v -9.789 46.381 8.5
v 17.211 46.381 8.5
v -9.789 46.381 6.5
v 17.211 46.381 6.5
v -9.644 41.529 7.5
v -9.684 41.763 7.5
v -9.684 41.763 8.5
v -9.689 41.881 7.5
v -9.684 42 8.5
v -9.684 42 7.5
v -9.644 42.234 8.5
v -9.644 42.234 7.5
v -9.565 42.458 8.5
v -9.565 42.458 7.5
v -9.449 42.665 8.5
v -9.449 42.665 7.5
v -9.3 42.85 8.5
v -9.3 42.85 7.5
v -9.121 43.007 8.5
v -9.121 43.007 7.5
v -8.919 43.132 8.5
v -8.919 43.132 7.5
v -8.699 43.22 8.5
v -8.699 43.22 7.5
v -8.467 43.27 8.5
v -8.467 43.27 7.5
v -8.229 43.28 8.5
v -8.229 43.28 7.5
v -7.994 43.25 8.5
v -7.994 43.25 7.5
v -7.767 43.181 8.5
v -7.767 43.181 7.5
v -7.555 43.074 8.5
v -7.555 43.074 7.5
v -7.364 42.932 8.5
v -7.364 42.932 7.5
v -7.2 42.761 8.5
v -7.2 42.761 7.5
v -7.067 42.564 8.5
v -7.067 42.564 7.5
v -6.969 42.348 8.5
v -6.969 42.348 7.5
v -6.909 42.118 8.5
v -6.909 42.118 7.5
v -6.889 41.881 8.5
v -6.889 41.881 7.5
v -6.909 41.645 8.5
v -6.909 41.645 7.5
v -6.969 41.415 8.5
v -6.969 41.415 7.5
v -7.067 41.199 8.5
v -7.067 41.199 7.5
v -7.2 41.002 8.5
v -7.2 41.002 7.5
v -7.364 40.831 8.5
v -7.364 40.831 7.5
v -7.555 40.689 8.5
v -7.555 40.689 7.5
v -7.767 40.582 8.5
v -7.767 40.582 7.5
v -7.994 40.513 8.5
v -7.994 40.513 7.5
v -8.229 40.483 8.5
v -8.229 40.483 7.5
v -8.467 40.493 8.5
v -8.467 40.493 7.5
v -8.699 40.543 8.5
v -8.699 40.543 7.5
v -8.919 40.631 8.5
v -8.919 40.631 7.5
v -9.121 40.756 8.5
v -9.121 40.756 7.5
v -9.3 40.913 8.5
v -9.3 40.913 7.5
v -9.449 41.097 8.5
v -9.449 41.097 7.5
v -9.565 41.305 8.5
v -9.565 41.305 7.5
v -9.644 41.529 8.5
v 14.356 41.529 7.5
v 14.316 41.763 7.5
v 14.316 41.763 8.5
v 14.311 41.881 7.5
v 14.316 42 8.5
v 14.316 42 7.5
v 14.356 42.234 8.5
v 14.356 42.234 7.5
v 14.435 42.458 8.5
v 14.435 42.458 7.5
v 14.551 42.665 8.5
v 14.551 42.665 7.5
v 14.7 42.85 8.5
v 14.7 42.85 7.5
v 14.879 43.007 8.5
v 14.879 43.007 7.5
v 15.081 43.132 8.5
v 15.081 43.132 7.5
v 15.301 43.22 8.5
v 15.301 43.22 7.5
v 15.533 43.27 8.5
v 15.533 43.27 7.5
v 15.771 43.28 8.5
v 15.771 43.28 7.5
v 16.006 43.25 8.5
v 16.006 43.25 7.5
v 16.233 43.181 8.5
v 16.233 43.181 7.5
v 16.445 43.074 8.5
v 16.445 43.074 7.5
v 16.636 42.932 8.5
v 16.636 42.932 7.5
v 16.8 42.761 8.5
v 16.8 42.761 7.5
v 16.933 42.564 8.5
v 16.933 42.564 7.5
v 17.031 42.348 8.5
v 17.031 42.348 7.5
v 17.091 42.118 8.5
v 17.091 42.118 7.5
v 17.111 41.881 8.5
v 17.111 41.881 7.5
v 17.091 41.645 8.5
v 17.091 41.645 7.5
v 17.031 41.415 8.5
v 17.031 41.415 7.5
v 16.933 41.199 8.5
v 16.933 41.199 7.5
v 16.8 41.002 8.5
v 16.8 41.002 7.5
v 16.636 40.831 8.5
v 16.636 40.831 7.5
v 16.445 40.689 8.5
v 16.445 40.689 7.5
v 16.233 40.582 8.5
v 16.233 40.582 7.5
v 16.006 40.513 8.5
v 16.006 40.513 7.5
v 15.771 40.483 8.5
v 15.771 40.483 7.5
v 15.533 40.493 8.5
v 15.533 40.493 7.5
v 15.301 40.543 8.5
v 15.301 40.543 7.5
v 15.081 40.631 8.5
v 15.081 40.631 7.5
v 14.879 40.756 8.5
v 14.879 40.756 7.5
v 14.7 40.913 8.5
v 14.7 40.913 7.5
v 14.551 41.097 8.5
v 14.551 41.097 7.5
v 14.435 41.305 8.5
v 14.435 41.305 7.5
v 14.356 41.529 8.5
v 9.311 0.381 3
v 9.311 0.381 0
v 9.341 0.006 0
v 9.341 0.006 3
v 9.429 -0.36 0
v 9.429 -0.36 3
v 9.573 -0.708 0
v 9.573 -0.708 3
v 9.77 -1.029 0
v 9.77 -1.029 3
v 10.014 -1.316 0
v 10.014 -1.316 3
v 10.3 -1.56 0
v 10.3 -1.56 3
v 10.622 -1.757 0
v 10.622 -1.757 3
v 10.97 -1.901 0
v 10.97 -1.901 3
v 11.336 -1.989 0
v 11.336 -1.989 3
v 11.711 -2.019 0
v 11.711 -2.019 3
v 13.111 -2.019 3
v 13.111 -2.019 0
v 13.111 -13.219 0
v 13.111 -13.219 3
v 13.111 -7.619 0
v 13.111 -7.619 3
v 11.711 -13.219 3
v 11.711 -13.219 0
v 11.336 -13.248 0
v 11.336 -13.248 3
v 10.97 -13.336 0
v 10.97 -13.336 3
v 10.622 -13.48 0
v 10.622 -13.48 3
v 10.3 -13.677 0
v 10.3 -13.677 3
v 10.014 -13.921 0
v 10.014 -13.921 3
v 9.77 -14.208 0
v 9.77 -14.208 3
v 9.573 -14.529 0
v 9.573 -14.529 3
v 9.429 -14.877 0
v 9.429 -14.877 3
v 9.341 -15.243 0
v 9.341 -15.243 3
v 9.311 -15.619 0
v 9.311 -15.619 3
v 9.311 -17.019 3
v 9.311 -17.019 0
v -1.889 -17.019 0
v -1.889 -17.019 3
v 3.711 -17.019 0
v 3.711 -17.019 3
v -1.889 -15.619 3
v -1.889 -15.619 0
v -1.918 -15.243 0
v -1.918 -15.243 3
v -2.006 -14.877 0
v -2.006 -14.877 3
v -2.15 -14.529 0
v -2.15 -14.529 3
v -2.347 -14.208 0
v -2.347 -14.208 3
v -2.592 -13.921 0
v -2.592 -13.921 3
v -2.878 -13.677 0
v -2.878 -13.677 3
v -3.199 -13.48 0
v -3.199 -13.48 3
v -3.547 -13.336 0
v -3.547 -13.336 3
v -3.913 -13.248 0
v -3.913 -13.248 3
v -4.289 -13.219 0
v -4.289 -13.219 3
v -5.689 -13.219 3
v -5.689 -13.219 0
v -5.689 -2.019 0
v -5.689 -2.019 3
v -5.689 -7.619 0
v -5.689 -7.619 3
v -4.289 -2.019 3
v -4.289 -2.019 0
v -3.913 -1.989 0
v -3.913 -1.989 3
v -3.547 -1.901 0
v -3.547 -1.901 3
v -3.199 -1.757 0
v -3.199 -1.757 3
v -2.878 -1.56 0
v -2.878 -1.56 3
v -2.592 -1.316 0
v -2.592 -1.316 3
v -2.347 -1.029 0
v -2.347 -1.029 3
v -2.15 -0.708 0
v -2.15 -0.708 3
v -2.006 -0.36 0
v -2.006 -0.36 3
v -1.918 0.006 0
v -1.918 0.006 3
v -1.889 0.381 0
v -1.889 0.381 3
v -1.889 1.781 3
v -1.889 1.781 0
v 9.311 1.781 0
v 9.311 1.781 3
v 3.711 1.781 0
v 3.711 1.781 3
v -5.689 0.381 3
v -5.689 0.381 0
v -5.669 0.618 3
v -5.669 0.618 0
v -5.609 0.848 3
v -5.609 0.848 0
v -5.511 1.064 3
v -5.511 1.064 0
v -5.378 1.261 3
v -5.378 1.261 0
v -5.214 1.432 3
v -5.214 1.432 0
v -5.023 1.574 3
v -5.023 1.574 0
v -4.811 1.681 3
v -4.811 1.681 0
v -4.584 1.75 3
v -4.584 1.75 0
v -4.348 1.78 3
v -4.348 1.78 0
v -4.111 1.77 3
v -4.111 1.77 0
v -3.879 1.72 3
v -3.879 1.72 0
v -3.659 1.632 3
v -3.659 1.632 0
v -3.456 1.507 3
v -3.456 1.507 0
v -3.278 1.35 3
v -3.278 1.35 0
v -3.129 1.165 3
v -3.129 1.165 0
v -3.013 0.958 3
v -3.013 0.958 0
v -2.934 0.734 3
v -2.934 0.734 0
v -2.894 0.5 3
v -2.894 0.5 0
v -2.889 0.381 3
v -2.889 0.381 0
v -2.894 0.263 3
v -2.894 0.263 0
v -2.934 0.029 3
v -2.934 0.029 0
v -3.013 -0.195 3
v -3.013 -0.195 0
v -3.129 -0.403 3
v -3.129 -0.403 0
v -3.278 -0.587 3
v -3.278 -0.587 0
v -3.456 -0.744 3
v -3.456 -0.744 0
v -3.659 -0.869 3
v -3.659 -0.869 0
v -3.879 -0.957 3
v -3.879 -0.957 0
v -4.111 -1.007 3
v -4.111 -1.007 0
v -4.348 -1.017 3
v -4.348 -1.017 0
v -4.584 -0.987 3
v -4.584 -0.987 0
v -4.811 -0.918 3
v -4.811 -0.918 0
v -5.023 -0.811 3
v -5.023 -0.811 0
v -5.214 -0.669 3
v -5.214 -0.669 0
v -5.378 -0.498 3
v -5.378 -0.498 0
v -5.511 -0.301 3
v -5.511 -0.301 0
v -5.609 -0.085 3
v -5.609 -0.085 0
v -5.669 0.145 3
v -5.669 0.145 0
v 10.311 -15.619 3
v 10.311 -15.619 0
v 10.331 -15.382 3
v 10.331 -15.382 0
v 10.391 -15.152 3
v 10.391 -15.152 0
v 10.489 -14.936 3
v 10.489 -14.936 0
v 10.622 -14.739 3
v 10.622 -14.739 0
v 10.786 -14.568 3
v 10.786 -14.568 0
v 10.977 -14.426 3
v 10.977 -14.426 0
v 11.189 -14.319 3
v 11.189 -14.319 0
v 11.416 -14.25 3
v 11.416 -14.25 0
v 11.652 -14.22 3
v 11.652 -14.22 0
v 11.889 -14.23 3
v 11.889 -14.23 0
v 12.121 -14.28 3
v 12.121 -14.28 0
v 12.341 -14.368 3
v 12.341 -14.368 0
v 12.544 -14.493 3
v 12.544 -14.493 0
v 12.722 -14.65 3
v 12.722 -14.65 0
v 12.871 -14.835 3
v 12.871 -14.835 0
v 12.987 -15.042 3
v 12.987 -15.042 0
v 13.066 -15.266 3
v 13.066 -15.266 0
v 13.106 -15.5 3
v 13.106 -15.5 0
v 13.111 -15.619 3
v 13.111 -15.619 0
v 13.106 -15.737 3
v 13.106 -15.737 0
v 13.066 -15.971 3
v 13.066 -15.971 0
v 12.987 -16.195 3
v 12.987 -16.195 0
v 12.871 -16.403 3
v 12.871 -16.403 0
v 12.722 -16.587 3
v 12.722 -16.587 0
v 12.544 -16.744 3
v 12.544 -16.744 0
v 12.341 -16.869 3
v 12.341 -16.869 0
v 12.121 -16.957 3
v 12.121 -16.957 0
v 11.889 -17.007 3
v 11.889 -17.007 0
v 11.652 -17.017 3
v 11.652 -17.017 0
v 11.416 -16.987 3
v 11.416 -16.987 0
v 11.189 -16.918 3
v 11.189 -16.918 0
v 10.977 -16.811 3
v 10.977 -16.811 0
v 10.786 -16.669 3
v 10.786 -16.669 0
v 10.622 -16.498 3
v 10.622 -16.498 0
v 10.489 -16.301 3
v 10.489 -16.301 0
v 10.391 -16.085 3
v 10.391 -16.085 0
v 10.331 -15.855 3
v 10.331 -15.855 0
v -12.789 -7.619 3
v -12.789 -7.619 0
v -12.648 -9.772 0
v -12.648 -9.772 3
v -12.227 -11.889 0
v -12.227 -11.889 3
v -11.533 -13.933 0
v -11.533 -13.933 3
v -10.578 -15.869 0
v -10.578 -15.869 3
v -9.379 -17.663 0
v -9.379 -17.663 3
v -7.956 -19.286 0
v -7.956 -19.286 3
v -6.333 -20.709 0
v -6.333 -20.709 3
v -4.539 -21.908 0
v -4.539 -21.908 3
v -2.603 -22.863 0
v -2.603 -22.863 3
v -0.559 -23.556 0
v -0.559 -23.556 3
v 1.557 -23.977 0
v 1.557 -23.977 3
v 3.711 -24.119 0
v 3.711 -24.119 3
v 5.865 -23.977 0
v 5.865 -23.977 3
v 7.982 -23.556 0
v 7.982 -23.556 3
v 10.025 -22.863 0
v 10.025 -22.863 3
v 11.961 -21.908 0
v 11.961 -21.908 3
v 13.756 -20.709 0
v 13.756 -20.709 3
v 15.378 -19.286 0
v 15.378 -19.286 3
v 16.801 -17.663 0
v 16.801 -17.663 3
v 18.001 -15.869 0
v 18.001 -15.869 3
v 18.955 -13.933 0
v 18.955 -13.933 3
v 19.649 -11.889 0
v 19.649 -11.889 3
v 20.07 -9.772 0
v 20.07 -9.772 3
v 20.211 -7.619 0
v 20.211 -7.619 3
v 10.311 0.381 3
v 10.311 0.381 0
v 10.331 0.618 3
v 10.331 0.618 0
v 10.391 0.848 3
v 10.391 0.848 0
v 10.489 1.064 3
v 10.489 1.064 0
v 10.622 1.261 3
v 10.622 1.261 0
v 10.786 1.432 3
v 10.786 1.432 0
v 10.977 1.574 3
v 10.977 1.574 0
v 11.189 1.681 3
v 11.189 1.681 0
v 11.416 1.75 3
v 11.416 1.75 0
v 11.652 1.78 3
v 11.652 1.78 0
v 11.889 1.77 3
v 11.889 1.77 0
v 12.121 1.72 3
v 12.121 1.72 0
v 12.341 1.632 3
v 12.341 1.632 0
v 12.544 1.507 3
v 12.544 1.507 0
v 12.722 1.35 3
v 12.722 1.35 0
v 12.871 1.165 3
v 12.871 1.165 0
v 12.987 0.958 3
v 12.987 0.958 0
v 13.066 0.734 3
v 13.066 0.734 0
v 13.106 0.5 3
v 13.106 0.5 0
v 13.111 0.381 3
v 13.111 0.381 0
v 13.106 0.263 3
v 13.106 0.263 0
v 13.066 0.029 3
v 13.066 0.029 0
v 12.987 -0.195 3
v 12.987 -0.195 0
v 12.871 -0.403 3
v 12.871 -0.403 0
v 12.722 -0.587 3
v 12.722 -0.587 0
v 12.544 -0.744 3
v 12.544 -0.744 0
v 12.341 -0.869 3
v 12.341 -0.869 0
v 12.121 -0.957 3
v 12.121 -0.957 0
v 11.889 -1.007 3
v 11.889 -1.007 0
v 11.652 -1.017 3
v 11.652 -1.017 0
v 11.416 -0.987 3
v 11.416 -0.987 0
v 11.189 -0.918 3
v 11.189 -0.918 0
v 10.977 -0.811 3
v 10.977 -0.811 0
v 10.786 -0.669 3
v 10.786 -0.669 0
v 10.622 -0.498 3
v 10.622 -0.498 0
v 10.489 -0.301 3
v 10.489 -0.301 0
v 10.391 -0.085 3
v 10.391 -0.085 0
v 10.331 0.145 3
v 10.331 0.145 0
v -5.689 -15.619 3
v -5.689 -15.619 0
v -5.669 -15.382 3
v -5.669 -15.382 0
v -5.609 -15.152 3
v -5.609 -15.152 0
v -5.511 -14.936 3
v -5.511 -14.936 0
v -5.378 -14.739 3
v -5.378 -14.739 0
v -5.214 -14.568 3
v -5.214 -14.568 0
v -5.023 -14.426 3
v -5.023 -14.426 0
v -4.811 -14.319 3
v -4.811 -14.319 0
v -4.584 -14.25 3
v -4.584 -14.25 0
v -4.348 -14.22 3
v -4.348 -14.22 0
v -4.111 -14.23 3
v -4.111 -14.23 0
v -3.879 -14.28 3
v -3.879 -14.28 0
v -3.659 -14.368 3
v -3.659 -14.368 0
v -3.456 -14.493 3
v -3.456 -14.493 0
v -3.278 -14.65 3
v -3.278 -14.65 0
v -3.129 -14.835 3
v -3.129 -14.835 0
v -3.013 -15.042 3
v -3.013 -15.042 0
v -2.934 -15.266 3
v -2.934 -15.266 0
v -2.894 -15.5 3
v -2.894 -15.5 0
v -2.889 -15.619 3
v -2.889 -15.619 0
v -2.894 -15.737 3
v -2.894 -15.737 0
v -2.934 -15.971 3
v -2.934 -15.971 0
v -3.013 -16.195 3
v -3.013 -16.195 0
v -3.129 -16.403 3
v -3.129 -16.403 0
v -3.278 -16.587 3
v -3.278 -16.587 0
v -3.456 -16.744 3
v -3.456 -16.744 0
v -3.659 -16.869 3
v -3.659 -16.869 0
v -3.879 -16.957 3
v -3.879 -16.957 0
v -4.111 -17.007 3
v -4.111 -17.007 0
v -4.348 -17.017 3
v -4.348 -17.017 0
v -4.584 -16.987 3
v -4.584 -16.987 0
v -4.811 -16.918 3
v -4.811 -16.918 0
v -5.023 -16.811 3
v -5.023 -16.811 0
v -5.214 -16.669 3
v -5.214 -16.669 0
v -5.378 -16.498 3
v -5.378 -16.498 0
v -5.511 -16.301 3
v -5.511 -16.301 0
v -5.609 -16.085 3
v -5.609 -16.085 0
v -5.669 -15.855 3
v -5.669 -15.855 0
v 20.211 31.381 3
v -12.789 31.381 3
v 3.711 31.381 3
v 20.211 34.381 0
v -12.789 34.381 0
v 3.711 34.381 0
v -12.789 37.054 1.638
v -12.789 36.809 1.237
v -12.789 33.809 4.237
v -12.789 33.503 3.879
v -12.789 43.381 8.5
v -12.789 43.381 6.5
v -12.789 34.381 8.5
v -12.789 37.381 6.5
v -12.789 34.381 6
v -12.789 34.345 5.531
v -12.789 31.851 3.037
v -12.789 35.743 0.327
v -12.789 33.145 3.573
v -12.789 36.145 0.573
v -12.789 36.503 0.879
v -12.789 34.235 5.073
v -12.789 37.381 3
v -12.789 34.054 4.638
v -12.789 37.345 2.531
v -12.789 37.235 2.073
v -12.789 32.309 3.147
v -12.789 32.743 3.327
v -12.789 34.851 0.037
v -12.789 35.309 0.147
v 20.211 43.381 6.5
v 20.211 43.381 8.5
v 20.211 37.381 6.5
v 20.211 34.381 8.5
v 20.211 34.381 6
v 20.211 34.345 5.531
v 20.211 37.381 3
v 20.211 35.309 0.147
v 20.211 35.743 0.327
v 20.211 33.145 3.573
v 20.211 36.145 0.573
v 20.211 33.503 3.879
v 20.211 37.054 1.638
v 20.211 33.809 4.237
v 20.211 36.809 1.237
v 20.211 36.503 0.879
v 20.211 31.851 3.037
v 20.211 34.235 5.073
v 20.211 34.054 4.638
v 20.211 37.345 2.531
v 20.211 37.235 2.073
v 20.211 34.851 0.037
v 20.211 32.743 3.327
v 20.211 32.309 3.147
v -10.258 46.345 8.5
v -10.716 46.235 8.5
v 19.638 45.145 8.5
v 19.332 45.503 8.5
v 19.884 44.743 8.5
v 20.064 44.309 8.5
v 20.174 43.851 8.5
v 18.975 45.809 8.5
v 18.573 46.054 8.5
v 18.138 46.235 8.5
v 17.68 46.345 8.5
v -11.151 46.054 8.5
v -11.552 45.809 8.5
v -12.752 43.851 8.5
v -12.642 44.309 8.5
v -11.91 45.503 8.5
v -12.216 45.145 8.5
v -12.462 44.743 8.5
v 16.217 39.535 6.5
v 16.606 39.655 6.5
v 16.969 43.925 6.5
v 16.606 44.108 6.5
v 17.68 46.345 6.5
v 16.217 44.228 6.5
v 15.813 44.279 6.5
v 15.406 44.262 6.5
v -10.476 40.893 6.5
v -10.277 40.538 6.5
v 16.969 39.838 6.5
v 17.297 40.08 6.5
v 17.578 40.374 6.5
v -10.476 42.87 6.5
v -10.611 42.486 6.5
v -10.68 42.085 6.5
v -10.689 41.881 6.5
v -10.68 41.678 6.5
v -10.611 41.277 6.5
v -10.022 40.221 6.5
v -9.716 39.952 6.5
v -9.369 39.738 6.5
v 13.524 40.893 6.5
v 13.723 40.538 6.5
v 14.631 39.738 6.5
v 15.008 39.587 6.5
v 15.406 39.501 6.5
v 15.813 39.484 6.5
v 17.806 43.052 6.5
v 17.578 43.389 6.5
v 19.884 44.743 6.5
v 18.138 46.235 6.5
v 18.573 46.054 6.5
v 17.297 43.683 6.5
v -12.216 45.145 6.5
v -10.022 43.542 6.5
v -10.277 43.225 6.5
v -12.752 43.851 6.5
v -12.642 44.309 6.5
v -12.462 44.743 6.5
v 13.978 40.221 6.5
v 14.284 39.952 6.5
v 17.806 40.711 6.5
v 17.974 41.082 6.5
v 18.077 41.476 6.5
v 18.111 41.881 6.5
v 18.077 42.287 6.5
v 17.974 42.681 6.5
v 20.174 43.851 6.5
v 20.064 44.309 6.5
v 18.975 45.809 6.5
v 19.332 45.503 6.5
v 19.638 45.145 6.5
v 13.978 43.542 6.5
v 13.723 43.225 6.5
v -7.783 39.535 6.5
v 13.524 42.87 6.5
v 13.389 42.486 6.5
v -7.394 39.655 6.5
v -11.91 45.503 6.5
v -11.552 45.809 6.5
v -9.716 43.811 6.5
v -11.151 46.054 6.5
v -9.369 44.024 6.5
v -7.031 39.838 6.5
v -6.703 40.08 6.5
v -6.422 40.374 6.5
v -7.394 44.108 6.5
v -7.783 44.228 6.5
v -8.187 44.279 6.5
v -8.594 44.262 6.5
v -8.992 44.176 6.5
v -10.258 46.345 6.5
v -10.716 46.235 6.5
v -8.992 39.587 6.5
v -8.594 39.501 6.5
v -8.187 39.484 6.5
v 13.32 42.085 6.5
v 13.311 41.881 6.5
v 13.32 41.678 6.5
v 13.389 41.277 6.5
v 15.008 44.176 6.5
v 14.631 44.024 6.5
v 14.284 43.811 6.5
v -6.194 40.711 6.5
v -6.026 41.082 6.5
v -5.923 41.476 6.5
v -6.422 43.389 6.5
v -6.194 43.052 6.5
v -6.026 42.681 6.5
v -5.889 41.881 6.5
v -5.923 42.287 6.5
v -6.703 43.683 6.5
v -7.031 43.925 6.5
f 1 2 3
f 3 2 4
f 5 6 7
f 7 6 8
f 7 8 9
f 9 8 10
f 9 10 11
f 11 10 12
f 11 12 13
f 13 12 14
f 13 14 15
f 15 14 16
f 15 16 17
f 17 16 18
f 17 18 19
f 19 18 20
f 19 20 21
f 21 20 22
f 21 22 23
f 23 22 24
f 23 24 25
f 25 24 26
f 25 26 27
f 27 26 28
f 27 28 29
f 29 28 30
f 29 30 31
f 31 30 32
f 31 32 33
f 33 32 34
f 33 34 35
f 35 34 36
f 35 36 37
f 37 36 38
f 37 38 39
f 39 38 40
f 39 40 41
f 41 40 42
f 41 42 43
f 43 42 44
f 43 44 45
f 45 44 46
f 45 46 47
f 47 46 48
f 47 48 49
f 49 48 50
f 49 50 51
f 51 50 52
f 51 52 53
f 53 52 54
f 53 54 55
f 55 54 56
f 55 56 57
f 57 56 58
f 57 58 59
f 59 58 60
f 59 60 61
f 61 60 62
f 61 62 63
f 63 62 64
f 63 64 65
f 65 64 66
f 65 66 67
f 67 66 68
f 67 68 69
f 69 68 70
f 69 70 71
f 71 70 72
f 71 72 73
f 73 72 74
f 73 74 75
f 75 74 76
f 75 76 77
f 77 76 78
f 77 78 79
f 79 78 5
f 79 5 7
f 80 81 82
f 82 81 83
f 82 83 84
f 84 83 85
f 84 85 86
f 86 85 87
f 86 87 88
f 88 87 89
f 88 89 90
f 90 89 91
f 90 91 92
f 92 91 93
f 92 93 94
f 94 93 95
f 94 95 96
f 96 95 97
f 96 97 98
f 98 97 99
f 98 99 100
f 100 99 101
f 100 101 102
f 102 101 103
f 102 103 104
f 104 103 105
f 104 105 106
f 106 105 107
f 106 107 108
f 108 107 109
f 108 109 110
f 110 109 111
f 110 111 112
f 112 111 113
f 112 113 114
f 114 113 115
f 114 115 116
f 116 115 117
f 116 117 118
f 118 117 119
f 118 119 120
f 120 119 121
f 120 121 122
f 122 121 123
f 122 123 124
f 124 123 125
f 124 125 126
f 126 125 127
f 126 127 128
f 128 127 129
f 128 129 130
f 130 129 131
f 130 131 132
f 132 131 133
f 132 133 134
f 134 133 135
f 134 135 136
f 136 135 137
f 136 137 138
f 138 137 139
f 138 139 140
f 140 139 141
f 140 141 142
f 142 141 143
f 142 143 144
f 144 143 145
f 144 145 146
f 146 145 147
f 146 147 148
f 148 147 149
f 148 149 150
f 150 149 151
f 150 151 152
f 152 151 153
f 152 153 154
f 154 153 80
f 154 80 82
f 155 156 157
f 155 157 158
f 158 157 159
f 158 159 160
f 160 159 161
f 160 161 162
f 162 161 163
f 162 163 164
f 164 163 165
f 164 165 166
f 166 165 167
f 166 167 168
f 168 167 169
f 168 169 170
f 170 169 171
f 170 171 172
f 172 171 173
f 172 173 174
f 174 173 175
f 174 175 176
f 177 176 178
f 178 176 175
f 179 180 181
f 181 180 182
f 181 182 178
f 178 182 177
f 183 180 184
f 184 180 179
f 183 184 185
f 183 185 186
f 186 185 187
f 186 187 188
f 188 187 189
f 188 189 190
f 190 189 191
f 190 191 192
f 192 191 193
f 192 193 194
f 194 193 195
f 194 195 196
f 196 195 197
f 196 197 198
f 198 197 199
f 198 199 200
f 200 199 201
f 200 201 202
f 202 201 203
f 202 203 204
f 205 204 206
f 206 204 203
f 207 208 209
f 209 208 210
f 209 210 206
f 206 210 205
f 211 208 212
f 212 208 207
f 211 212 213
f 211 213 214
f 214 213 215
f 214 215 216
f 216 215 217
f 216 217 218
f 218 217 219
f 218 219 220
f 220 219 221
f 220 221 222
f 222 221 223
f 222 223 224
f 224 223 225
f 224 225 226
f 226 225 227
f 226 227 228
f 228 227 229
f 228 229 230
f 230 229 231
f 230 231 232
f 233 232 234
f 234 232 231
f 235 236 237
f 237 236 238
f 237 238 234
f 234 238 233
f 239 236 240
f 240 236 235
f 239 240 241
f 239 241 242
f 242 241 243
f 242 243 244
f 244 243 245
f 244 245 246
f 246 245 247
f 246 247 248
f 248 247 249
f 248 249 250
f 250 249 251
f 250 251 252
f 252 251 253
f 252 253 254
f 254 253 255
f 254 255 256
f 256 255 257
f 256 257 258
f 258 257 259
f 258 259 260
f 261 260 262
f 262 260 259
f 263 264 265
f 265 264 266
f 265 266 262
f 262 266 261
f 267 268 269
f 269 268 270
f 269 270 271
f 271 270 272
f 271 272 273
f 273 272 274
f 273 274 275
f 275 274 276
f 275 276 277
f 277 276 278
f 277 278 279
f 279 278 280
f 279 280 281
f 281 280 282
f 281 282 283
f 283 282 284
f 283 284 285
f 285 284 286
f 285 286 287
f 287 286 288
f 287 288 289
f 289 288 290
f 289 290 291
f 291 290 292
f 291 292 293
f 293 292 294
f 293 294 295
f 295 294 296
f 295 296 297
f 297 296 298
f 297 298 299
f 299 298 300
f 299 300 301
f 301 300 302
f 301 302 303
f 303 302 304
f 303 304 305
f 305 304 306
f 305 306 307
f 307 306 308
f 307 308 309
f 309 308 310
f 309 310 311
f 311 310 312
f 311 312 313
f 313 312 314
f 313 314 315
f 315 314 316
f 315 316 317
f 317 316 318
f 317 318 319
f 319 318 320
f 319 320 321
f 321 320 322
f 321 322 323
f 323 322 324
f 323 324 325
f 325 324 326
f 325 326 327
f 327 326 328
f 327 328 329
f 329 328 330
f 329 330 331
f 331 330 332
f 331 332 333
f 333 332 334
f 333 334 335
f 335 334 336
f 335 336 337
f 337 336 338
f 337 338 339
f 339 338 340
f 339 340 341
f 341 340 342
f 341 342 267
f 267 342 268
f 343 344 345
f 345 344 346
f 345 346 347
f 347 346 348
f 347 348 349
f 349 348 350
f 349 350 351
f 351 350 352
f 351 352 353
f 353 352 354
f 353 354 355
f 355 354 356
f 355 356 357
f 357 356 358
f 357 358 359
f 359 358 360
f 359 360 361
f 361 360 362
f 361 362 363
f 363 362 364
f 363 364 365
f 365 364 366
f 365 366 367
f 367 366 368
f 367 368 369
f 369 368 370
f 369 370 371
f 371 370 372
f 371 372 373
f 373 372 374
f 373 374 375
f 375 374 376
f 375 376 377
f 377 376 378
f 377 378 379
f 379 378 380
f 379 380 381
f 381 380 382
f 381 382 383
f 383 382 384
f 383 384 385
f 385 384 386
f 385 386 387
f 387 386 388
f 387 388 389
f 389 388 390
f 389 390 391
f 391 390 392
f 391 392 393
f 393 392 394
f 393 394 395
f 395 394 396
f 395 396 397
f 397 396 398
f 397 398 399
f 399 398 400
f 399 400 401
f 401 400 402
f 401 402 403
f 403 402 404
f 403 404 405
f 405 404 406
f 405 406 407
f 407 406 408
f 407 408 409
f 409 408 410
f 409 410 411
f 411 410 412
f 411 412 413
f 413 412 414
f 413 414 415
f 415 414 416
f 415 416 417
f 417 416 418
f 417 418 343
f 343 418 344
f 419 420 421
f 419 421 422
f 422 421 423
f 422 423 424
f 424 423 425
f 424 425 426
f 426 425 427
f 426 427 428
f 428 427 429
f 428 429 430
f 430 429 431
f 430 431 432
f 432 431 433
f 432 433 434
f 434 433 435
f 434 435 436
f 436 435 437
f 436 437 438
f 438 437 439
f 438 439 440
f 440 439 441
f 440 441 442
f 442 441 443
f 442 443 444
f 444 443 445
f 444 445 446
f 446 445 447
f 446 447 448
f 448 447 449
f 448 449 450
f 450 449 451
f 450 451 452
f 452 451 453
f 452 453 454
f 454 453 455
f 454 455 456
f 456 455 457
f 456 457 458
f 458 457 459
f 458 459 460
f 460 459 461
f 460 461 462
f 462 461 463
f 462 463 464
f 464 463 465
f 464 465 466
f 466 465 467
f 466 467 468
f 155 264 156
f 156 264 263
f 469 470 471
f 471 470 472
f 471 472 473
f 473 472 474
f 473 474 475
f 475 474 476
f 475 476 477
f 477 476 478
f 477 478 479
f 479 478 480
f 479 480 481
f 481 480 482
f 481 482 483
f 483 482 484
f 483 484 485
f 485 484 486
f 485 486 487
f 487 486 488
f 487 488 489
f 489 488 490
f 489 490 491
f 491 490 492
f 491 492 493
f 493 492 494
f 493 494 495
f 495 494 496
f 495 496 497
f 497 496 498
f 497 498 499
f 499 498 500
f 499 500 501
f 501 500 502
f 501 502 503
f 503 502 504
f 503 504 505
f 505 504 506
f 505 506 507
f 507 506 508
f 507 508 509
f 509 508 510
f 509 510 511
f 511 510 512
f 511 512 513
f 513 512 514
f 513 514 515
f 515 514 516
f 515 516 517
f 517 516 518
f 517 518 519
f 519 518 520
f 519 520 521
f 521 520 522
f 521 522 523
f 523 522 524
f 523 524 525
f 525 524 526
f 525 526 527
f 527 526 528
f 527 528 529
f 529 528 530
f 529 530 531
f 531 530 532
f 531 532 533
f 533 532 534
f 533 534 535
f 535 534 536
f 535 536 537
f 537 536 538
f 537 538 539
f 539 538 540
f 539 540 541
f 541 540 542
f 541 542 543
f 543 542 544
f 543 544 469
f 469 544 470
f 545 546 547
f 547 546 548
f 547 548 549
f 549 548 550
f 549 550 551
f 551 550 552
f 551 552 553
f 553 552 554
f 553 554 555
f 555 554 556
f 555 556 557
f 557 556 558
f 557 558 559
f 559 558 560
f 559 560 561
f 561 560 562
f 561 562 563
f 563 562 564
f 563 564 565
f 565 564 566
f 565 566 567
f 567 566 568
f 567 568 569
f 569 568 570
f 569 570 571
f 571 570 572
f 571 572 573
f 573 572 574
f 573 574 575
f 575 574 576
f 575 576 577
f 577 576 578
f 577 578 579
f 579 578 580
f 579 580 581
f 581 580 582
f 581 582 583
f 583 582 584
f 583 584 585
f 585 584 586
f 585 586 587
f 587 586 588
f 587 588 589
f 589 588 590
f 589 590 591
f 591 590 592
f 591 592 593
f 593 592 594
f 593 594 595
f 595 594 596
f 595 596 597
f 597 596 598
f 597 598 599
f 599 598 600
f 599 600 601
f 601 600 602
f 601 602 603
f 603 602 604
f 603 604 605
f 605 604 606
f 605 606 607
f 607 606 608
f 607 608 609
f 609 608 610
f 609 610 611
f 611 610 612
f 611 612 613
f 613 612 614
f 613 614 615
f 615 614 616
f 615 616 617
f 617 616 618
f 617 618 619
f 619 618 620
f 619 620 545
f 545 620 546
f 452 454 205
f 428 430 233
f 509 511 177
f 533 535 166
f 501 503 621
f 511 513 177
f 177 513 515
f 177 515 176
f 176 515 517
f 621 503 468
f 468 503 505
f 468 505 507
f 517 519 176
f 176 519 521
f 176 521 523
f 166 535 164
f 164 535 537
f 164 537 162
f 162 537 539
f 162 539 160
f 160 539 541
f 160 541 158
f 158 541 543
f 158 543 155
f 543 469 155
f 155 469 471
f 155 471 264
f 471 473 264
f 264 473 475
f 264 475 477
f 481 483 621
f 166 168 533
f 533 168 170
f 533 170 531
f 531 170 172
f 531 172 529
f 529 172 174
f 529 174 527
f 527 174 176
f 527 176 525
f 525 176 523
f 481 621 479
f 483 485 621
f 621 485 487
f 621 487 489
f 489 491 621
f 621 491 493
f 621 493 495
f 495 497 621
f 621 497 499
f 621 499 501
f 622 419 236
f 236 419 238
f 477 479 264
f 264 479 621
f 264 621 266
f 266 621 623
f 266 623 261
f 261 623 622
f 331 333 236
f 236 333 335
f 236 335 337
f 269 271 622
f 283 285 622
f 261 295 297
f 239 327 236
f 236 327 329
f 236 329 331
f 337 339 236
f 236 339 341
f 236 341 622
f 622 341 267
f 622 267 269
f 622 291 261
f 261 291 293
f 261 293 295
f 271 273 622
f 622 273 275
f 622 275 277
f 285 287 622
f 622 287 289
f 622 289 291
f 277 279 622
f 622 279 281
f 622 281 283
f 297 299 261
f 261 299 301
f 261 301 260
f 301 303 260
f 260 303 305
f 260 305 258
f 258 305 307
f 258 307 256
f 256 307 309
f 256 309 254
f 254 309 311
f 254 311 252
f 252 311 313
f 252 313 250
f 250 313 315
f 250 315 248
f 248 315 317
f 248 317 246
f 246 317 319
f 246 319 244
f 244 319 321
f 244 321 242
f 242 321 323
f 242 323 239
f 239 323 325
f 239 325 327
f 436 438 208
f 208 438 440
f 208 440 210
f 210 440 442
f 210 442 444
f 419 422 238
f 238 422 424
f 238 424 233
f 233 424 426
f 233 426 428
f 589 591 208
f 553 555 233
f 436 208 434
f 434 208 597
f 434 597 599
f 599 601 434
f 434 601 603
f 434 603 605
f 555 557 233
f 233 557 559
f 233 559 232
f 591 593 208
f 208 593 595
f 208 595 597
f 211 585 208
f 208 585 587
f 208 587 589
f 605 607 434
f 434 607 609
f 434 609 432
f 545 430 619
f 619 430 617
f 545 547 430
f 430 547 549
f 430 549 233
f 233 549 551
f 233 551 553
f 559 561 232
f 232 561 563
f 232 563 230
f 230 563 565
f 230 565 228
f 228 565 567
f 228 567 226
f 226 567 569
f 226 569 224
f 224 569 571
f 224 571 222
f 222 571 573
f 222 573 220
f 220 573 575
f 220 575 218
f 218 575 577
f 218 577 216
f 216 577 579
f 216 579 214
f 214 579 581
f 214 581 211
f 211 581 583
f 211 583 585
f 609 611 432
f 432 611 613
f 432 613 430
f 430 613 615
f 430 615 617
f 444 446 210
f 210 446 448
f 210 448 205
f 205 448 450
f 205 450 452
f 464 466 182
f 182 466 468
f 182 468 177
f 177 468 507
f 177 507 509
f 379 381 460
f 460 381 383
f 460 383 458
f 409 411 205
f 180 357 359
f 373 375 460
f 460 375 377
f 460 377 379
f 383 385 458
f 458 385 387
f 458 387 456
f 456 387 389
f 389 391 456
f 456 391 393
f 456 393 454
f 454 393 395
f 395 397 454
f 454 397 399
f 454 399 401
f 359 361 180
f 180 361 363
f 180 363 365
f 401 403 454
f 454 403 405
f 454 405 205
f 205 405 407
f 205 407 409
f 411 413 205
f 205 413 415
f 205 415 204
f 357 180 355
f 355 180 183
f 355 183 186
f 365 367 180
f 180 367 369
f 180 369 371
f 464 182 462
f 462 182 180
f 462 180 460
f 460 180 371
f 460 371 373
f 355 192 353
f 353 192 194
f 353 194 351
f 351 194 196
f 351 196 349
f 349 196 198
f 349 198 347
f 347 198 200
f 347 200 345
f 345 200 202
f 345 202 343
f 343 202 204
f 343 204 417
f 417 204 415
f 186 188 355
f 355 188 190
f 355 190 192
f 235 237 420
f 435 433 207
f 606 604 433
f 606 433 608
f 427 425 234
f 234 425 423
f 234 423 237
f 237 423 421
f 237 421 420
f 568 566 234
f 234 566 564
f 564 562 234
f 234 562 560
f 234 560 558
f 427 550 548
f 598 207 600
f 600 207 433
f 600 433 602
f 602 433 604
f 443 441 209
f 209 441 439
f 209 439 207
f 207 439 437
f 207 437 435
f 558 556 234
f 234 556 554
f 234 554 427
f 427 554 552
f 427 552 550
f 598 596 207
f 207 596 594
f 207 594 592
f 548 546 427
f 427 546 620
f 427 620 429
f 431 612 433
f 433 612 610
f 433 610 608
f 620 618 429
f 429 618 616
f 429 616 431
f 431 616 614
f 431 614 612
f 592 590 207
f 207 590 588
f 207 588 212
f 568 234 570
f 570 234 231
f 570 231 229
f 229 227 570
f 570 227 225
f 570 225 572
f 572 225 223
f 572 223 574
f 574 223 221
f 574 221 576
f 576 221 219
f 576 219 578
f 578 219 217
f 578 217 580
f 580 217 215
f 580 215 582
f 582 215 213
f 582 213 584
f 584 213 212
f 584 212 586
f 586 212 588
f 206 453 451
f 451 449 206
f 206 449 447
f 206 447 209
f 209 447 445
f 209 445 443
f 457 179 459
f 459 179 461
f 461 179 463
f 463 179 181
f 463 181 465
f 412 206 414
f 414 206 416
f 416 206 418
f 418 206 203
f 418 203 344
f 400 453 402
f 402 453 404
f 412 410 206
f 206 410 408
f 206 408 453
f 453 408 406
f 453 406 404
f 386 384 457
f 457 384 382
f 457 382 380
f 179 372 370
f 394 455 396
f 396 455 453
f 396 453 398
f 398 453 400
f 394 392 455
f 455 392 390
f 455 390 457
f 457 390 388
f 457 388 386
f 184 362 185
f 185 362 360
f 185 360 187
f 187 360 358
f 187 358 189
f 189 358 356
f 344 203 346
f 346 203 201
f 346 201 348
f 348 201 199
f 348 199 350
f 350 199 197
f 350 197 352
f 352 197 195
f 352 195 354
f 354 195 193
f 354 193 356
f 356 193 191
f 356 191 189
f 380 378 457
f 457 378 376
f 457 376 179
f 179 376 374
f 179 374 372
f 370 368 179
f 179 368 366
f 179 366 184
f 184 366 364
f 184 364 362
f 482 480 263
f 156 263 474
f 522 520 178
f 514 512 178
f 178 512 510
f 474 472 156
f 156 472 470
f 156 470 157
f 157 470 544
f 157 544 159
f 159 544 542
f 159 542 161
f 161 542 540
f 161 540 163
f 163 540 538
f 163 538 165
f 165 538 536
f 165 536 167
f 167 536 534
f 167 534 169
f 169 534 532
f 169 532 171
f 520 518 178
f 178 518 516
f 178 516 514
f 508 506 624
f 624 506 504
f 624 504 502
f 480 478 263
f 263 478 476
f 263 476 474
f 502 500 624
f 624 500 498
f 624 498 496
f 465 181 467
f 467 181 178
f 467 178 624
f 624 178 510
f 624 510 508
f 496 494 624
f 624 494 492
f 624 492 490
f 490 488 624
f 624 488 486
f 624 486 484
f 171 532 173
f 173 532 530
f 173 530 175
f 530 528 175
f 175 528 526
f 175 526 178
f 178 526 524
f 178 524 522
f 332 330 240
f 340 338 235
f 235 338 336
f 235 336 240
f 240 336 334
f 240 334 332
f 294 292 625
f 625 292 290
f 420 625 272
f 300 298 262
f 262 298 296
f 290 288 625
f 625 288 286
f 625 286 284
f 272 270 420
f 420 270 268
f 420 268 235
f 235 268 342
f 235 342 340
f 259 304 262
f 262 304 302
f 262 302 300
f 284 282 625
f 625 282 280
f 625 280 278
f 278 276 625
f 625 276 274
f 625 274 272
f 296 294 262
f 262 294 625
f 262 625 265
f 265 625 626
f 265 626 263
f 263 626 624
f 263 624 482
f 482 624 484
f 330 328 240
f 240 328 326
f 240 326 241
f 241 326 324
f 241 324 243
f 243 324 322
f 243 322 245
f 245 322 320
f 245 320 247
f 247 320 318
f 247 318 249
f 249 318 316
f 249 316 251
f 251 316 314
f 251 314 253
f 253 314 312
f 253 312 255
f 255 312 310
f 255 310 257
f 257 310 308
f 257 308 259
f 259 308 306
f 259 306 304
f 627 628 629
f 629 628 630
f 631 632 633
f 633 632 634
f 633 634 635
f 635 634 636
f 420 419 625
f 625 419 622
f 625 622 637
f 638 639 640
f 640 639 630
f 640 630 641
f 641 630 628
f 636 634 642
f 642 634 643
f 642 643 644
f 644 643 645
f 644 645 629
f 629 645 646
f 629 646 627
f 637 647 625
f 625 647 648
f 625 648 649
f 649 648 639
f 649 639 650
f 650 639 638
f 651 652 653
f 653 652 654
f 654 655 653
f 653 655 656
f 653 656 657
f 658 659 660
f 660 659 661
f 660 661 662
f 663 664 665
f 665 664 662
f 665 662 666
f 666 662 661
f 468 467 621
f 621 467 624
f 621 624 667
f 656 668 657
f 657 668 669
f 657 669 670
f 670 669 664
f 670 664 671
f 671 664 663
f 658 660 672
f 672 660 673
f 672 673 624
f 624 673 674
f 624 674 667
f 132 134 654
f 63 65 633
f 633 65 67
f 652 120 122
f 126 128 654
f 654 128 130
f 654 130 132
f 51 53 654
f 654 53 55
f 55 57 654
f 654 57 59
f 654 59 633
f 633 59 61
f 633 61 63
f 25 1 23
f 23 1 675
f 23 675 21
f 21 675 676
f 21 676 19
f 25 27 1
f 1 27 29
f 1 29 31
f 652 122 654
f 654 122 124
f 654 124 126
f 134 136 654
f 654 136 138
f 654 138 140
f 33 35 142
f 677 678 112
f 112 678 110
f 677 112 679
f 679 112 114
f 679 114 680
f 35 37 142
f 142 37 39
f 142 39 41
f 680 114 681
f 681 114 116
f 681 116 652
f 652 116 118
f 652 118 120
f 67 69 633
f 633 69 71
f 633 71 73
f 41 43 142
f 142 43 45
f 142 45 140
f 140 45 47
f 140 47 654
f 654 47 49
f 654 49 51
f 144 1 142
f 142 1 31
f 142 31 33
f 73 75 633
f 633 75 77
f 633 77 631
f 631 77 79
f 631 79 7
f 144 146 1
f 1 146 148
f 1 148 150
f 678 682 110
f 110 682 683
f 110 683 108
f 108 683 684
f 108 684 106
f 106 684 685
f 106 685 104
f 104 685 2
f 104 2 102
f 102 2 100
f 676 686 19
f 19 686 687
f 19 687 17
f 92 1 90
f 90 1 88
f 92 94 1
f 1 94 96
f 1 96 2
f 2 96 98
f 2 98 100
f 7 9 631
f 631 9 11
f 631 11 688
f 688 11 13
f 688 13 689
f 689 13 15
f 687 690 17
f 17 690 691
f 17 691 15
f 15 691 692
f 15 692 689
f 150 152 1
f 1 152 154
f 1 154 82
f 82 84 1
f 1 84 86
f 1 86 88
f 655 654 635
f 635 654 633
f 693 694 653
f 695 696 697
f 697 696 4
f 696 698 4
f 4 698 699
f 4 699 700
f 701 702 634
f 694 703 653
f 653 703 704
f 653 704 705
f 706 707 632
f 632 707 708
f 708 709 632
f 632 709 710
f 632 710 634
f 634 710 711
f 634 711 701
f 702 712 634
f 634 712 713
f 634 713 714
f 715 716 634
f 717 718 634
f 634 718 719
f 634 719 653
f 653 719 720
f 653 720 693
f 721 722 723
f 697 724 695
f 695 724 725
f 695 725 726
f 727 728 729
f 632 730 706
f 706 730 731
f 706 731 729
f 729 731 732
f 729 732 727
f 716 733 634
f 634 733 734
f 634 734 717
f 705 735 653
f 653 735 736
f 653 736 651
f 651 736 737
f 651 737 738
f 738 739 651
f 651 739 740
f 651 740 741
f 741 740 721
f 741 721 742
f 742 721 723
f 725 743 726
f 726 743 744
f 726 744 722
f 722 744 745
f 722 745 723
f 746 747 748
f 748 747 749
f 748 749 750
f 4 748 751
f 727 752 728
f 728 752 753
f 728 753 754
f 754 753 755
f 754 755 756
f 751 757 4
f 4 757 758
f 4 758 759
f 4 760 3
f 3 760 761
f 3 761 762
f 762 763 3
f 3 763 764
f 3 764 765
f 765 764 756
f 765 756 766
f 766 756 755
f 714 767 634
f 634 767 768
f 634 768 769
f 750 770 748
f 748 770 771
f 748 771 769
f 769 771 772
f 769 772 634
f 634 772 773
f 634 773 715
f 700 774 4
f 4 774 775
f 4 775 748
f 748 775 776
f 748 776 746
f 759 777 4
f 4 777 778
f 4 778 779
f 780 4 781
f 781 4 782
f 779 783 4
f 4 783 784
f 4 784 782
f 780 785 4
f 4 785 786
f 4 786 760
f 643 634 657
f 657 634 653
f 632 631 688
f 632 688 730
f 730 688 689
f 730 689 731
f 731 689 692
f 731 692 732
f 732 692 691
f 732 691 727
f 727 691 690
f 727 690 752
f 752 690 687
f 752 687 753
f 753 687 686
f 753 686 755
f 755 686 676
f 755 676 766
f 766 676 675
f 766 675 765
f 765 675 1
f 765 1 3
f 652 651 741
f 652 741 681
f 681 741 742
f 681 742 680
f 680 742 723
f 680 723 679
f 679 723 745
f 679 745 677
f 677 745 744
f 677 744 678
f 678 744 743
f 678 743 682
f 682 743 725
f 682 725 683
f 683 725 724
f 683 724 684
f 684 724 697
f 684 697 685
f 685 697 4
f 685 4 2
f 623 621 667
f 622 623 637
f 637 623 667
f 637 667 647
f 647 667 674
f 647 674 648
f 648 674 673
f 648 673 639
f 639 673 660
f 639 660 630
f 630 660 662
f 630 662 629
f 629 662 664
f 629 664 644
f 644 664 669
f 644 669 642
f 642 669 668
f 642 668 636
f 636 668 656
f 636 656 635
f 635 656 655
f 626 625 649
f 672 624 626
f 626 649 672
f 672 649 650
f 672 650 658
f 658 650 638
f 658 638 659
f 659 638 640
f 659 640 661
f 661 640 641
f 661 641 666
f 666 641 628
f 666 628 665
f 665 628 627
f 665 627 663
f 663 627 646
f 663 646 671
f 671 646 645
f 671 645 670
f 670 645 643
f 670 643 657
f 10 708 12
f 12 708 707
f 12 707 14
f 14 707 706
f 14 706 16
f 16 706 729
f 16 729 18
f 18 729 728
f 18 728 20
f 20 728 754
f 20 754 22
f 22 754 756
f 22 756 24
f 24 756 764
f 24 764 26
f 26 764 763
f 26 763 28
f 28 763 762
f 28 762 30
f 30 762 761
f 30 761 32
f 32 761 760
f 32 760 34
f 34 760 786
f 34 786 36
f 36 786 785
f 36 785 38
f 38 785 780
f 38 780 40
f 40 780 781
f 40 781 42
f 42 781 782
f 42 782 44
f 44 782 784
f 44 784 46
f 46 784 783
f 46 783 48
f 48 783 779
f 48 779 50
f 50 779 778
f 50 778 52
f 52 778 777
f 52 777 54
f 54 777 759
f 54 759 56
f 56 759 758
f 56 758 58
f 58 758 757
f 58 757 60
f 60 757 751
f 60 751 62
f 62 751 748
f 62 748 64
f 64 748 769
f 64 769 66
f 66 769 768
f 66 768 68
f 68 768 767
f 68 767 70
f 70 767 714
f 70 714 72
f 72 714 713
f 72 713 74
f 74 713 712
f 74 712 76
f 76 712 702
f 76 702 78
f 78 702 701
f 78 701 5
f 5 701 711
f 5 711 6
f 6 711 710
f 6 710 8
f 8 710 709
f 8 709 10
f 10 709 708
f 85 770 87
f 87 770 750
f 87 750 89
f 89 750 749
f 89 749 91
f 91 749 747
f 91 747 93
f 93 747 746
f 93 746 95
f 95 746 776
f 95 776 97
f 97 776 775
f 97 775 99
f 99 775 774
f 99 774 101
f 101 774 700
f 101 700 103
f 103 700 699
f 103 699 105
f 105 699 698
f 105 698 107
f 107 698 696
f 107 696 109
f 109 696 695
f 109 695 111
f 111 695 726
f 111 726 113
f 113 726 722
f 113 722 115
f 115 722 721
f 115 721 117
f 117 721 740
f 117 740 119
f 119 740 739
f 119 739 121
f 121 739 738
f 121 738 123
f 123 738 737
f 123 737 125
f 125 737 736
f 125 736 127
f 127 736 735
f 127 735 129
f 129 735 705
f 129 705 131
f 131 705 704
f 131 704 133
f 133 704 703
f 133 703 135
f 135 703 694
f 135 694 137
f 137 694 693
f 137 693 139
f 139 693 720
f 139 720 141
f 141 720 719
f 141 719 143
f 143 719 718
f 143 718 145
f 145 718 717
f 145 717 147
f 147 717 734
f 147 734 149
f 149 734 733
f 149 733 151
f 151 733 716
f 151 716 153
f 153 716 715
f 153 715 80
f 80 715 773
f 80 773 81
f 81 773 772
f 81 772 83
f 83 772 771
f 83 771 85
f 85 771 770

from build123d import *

# Parameters (mm, degrees)
SKETCH1_R           = 16.5
SKETCH1_R_2         = 2.4
SKETCH1_R_3         = 1.4
BOSS_EXTRUDE1_DEPTH = 3
BOSS_EXTRUDE2_START = -3
SKETCH3_R           = 1.4
BOSS_EXTRUDE2_DEPTH = 3
SKETCH4_W           = 33
SKETCH4_H           = 12
SKETCH4_R           = 1.4
BOSS_EXTRUDE3_DEPTH = 5.5
SKETCH5_W           = 33
SKETCH5_H           = 9
CUT_EXTRUDE1_DEPTH  = 6.5
FILLET1_R           = 3
CHAMFER1_SIZE       = 1


with BuildPart() as part:
    # Sketch1 → Boss-Extrude1 (new body)
    # profile 1 of 5: a face of its own
    with BuildSketch(Plane.XY):
        with Locations((3.7111495, -7.618539739)):
            Circle(SKETCH1_R)
        with BuildLine():
            ThreePointArc((-4.2888505, -2.018539739), (-5.985906775, 2.078516536), (-1.8888505, 0.381460261))
            Line((-1.8888505, 0.381460261), (-1.8888505, 1.781460261))
            Line((-1.8888505, 1.781460261), (9.3111495, 1.781460261))
            Line((9.3111495, 1.781460261), (9.3111495, 0.381460261))
            ThreePointArc((9.3111495, 0.381460261), (11.7111495, 2.781460261), (14.1111495, 0.381460261))
            ThreePointArc((14.1111495, 0.381460261), (13.408205775, -1.315596014), (11.7111495, -2.018539739))
            Line((11.7111495, -2.018539739), (13.1111495, -2.018539739))
            Line((13.1111495, -2.018539739), (13.1111495, -13.218539739))
            Line((13.1111495, -13.218539739), (11.7111495, -13.218539739))
            ThreePointArc((11.7111495, -13.218539739), (13.408205775, -13.921483464), (14.1111495, -15.618539739))
            ThreePointArc((14.1111495, -15.618539739), (11.7111495, -18.018539739), (9.3111495, -15.618539739))
            Line((9.3111495, -15.618539739), (9.3111495, -17.018539739))
            Line((9.3111495, -17.018539739), (-1.8888505, -17.018539739))
            Line((-1.8888505, -17.018539739), (-1.8888505, -15.618539739))
            ThreePointArc((-1.8888505, -15.618539739), (-5.985906775, -17.315596014), (-4.2888505, -13.218539739))
            Line((-4.2888505, -13.218539739), (-5.6888505, -13.218539739))
            Line((-5.6888505, -13.218539739), (-5.6888505, -2.018539739))
            Line((-5.6888505, -2.018539739), (-4.2888505, -2.018539739))
        make_face(mode=Mode.SUBTRACT)
    # profile 2 of 5: a face of its own
    with BuildSketch(Plane.XY):
        with Locations((11.7111495, -15.618539739)):
            Circle(SKETCH1_R_2)
        with Locations((11.7111495, -15.618539739)):
            Circle(SKETCH1_R_3, mode=Mode.SUBTRACT)
    # profile 3 of 5: a face of its own
    with BuildSketch(Plane.XY):
        with Locations((-4.2888505, -15.618539739)):
            Circle(SKETCH1_R_2)
        with Locations((-4.2888505, -15.618539739)):
            Circle(SKETCH1_R_3, mode=Mode.SUBTRACT)
    # profile 4 of 5: a face of its own
    with BuildSketch(Plane.XY):
        with Locations((-4.2888505, 0.381460261)):
            Circle(SKETCH1_R_2)
        with Locations((-4.2888505, 0.381460261)):
            Circle(SKETCH1_R_3, mode=Mode.SUBTRACT)
    # profile 5 of 5: a face of its own
    with BuildSketch(Plane.XY):
        with Locations((11.7111495, 0.381460261)):
            Circle(SKETCH1_R_2)
        with Locations((11.7111495, 0.381460261)):
            Circle(SKETCH1_R_3, mode=Mode.SUBTRACT)
    extrude(amount=BOSS_EXTRUDE1_DEPTH)

    # Sketch3 → Boss-Extrude2 (add)
    with BuildSketch(Plane.XY.offset(3).offset(BOSS_EXTRUDE2_START)):
        with BuildLine():
            Line((-12.7888505, 46.381460261), (-12.7888505, -7.618539739))
            ThreePointArc((-12.7888505, -7.618539739), (3.7111495, 8.881460261), (20.2111495, -7.618539739))
            Line((20.2111495, -7.618539739), (20.2111495, 46.381460261))
            Line((20.2111495, 46.381460261), (-12.7888505, 46.381460261))
        make_face()
        with Locations((-8.2888505, 41.881460261)):
            Circle(SKETCH3_R, mode=Mode.SUBTRACT)
        with Locations((15.7111495, 41.881460261)):
            Circle(SKETCH3_R, mode=Mode.SUBTRACT)
    extrude(amount=BOSS_EXTRUDE2_DEPTH)

    # Sketch4 → Boss-Extrude3 (add)
    with BuildSketch(Plane.XY.offset(3)):
        with Locations((3.7111495, 40.381460261)):
            Rectangle(SKETCH4_W, SKETCH4_H)
        with Locations((-8.2888505, 41.881460261)):
            Circle(SKETCH4_R, mode=Mode.SUBTRACT)
        with Locations((15.7111495, 41.881460261)):
            Circle(SKETCH4_R, mode=Mode.SUBTRACT)
    extrude(amount=BOSS_EXTRUDE3_DEPTH)

    # Sketch5 → Cut-Extrude1 (cut)
    with BuildSketch(Plane(origin=(0, 0, 0), x_dir=(-1, 0, 0), z_dir=(0, 0, -1))):
        with Locations((-3.7111495, 41.881460261)):
            Rectangle(SKETCH5_W, SKETCH5_H)
    extrude(amount=-CUT_EXTRUDE1_DEPTH, mode=Mode.SUBTRACT)

    # Fillet1
    fillet1_edges = [part.edges().sort_by_distance(p)[0] for p in [
        (20.2111495, 46.381460261, 7.5),
        (-12.7888505, 46.381460261, 7.5),
        (3.7111495, 37.381460261, 0),
        (3.7111495, 34.381460261, 3),
    ]]
    fillet(fillet1_edges, radius=FILLET1_R)

    # Chamfer1
    chamfer1_edges = [part.edges().sort_by_distance(p)[0] for p in [
        (-9.6888505, 41.881460261, 6.5),
        (14.3111495, 41.881460261, 6.5),
    ]]
    chamfer(chamfer1_edges, length=CHAMFER1_SIZE)


solid = part.part
